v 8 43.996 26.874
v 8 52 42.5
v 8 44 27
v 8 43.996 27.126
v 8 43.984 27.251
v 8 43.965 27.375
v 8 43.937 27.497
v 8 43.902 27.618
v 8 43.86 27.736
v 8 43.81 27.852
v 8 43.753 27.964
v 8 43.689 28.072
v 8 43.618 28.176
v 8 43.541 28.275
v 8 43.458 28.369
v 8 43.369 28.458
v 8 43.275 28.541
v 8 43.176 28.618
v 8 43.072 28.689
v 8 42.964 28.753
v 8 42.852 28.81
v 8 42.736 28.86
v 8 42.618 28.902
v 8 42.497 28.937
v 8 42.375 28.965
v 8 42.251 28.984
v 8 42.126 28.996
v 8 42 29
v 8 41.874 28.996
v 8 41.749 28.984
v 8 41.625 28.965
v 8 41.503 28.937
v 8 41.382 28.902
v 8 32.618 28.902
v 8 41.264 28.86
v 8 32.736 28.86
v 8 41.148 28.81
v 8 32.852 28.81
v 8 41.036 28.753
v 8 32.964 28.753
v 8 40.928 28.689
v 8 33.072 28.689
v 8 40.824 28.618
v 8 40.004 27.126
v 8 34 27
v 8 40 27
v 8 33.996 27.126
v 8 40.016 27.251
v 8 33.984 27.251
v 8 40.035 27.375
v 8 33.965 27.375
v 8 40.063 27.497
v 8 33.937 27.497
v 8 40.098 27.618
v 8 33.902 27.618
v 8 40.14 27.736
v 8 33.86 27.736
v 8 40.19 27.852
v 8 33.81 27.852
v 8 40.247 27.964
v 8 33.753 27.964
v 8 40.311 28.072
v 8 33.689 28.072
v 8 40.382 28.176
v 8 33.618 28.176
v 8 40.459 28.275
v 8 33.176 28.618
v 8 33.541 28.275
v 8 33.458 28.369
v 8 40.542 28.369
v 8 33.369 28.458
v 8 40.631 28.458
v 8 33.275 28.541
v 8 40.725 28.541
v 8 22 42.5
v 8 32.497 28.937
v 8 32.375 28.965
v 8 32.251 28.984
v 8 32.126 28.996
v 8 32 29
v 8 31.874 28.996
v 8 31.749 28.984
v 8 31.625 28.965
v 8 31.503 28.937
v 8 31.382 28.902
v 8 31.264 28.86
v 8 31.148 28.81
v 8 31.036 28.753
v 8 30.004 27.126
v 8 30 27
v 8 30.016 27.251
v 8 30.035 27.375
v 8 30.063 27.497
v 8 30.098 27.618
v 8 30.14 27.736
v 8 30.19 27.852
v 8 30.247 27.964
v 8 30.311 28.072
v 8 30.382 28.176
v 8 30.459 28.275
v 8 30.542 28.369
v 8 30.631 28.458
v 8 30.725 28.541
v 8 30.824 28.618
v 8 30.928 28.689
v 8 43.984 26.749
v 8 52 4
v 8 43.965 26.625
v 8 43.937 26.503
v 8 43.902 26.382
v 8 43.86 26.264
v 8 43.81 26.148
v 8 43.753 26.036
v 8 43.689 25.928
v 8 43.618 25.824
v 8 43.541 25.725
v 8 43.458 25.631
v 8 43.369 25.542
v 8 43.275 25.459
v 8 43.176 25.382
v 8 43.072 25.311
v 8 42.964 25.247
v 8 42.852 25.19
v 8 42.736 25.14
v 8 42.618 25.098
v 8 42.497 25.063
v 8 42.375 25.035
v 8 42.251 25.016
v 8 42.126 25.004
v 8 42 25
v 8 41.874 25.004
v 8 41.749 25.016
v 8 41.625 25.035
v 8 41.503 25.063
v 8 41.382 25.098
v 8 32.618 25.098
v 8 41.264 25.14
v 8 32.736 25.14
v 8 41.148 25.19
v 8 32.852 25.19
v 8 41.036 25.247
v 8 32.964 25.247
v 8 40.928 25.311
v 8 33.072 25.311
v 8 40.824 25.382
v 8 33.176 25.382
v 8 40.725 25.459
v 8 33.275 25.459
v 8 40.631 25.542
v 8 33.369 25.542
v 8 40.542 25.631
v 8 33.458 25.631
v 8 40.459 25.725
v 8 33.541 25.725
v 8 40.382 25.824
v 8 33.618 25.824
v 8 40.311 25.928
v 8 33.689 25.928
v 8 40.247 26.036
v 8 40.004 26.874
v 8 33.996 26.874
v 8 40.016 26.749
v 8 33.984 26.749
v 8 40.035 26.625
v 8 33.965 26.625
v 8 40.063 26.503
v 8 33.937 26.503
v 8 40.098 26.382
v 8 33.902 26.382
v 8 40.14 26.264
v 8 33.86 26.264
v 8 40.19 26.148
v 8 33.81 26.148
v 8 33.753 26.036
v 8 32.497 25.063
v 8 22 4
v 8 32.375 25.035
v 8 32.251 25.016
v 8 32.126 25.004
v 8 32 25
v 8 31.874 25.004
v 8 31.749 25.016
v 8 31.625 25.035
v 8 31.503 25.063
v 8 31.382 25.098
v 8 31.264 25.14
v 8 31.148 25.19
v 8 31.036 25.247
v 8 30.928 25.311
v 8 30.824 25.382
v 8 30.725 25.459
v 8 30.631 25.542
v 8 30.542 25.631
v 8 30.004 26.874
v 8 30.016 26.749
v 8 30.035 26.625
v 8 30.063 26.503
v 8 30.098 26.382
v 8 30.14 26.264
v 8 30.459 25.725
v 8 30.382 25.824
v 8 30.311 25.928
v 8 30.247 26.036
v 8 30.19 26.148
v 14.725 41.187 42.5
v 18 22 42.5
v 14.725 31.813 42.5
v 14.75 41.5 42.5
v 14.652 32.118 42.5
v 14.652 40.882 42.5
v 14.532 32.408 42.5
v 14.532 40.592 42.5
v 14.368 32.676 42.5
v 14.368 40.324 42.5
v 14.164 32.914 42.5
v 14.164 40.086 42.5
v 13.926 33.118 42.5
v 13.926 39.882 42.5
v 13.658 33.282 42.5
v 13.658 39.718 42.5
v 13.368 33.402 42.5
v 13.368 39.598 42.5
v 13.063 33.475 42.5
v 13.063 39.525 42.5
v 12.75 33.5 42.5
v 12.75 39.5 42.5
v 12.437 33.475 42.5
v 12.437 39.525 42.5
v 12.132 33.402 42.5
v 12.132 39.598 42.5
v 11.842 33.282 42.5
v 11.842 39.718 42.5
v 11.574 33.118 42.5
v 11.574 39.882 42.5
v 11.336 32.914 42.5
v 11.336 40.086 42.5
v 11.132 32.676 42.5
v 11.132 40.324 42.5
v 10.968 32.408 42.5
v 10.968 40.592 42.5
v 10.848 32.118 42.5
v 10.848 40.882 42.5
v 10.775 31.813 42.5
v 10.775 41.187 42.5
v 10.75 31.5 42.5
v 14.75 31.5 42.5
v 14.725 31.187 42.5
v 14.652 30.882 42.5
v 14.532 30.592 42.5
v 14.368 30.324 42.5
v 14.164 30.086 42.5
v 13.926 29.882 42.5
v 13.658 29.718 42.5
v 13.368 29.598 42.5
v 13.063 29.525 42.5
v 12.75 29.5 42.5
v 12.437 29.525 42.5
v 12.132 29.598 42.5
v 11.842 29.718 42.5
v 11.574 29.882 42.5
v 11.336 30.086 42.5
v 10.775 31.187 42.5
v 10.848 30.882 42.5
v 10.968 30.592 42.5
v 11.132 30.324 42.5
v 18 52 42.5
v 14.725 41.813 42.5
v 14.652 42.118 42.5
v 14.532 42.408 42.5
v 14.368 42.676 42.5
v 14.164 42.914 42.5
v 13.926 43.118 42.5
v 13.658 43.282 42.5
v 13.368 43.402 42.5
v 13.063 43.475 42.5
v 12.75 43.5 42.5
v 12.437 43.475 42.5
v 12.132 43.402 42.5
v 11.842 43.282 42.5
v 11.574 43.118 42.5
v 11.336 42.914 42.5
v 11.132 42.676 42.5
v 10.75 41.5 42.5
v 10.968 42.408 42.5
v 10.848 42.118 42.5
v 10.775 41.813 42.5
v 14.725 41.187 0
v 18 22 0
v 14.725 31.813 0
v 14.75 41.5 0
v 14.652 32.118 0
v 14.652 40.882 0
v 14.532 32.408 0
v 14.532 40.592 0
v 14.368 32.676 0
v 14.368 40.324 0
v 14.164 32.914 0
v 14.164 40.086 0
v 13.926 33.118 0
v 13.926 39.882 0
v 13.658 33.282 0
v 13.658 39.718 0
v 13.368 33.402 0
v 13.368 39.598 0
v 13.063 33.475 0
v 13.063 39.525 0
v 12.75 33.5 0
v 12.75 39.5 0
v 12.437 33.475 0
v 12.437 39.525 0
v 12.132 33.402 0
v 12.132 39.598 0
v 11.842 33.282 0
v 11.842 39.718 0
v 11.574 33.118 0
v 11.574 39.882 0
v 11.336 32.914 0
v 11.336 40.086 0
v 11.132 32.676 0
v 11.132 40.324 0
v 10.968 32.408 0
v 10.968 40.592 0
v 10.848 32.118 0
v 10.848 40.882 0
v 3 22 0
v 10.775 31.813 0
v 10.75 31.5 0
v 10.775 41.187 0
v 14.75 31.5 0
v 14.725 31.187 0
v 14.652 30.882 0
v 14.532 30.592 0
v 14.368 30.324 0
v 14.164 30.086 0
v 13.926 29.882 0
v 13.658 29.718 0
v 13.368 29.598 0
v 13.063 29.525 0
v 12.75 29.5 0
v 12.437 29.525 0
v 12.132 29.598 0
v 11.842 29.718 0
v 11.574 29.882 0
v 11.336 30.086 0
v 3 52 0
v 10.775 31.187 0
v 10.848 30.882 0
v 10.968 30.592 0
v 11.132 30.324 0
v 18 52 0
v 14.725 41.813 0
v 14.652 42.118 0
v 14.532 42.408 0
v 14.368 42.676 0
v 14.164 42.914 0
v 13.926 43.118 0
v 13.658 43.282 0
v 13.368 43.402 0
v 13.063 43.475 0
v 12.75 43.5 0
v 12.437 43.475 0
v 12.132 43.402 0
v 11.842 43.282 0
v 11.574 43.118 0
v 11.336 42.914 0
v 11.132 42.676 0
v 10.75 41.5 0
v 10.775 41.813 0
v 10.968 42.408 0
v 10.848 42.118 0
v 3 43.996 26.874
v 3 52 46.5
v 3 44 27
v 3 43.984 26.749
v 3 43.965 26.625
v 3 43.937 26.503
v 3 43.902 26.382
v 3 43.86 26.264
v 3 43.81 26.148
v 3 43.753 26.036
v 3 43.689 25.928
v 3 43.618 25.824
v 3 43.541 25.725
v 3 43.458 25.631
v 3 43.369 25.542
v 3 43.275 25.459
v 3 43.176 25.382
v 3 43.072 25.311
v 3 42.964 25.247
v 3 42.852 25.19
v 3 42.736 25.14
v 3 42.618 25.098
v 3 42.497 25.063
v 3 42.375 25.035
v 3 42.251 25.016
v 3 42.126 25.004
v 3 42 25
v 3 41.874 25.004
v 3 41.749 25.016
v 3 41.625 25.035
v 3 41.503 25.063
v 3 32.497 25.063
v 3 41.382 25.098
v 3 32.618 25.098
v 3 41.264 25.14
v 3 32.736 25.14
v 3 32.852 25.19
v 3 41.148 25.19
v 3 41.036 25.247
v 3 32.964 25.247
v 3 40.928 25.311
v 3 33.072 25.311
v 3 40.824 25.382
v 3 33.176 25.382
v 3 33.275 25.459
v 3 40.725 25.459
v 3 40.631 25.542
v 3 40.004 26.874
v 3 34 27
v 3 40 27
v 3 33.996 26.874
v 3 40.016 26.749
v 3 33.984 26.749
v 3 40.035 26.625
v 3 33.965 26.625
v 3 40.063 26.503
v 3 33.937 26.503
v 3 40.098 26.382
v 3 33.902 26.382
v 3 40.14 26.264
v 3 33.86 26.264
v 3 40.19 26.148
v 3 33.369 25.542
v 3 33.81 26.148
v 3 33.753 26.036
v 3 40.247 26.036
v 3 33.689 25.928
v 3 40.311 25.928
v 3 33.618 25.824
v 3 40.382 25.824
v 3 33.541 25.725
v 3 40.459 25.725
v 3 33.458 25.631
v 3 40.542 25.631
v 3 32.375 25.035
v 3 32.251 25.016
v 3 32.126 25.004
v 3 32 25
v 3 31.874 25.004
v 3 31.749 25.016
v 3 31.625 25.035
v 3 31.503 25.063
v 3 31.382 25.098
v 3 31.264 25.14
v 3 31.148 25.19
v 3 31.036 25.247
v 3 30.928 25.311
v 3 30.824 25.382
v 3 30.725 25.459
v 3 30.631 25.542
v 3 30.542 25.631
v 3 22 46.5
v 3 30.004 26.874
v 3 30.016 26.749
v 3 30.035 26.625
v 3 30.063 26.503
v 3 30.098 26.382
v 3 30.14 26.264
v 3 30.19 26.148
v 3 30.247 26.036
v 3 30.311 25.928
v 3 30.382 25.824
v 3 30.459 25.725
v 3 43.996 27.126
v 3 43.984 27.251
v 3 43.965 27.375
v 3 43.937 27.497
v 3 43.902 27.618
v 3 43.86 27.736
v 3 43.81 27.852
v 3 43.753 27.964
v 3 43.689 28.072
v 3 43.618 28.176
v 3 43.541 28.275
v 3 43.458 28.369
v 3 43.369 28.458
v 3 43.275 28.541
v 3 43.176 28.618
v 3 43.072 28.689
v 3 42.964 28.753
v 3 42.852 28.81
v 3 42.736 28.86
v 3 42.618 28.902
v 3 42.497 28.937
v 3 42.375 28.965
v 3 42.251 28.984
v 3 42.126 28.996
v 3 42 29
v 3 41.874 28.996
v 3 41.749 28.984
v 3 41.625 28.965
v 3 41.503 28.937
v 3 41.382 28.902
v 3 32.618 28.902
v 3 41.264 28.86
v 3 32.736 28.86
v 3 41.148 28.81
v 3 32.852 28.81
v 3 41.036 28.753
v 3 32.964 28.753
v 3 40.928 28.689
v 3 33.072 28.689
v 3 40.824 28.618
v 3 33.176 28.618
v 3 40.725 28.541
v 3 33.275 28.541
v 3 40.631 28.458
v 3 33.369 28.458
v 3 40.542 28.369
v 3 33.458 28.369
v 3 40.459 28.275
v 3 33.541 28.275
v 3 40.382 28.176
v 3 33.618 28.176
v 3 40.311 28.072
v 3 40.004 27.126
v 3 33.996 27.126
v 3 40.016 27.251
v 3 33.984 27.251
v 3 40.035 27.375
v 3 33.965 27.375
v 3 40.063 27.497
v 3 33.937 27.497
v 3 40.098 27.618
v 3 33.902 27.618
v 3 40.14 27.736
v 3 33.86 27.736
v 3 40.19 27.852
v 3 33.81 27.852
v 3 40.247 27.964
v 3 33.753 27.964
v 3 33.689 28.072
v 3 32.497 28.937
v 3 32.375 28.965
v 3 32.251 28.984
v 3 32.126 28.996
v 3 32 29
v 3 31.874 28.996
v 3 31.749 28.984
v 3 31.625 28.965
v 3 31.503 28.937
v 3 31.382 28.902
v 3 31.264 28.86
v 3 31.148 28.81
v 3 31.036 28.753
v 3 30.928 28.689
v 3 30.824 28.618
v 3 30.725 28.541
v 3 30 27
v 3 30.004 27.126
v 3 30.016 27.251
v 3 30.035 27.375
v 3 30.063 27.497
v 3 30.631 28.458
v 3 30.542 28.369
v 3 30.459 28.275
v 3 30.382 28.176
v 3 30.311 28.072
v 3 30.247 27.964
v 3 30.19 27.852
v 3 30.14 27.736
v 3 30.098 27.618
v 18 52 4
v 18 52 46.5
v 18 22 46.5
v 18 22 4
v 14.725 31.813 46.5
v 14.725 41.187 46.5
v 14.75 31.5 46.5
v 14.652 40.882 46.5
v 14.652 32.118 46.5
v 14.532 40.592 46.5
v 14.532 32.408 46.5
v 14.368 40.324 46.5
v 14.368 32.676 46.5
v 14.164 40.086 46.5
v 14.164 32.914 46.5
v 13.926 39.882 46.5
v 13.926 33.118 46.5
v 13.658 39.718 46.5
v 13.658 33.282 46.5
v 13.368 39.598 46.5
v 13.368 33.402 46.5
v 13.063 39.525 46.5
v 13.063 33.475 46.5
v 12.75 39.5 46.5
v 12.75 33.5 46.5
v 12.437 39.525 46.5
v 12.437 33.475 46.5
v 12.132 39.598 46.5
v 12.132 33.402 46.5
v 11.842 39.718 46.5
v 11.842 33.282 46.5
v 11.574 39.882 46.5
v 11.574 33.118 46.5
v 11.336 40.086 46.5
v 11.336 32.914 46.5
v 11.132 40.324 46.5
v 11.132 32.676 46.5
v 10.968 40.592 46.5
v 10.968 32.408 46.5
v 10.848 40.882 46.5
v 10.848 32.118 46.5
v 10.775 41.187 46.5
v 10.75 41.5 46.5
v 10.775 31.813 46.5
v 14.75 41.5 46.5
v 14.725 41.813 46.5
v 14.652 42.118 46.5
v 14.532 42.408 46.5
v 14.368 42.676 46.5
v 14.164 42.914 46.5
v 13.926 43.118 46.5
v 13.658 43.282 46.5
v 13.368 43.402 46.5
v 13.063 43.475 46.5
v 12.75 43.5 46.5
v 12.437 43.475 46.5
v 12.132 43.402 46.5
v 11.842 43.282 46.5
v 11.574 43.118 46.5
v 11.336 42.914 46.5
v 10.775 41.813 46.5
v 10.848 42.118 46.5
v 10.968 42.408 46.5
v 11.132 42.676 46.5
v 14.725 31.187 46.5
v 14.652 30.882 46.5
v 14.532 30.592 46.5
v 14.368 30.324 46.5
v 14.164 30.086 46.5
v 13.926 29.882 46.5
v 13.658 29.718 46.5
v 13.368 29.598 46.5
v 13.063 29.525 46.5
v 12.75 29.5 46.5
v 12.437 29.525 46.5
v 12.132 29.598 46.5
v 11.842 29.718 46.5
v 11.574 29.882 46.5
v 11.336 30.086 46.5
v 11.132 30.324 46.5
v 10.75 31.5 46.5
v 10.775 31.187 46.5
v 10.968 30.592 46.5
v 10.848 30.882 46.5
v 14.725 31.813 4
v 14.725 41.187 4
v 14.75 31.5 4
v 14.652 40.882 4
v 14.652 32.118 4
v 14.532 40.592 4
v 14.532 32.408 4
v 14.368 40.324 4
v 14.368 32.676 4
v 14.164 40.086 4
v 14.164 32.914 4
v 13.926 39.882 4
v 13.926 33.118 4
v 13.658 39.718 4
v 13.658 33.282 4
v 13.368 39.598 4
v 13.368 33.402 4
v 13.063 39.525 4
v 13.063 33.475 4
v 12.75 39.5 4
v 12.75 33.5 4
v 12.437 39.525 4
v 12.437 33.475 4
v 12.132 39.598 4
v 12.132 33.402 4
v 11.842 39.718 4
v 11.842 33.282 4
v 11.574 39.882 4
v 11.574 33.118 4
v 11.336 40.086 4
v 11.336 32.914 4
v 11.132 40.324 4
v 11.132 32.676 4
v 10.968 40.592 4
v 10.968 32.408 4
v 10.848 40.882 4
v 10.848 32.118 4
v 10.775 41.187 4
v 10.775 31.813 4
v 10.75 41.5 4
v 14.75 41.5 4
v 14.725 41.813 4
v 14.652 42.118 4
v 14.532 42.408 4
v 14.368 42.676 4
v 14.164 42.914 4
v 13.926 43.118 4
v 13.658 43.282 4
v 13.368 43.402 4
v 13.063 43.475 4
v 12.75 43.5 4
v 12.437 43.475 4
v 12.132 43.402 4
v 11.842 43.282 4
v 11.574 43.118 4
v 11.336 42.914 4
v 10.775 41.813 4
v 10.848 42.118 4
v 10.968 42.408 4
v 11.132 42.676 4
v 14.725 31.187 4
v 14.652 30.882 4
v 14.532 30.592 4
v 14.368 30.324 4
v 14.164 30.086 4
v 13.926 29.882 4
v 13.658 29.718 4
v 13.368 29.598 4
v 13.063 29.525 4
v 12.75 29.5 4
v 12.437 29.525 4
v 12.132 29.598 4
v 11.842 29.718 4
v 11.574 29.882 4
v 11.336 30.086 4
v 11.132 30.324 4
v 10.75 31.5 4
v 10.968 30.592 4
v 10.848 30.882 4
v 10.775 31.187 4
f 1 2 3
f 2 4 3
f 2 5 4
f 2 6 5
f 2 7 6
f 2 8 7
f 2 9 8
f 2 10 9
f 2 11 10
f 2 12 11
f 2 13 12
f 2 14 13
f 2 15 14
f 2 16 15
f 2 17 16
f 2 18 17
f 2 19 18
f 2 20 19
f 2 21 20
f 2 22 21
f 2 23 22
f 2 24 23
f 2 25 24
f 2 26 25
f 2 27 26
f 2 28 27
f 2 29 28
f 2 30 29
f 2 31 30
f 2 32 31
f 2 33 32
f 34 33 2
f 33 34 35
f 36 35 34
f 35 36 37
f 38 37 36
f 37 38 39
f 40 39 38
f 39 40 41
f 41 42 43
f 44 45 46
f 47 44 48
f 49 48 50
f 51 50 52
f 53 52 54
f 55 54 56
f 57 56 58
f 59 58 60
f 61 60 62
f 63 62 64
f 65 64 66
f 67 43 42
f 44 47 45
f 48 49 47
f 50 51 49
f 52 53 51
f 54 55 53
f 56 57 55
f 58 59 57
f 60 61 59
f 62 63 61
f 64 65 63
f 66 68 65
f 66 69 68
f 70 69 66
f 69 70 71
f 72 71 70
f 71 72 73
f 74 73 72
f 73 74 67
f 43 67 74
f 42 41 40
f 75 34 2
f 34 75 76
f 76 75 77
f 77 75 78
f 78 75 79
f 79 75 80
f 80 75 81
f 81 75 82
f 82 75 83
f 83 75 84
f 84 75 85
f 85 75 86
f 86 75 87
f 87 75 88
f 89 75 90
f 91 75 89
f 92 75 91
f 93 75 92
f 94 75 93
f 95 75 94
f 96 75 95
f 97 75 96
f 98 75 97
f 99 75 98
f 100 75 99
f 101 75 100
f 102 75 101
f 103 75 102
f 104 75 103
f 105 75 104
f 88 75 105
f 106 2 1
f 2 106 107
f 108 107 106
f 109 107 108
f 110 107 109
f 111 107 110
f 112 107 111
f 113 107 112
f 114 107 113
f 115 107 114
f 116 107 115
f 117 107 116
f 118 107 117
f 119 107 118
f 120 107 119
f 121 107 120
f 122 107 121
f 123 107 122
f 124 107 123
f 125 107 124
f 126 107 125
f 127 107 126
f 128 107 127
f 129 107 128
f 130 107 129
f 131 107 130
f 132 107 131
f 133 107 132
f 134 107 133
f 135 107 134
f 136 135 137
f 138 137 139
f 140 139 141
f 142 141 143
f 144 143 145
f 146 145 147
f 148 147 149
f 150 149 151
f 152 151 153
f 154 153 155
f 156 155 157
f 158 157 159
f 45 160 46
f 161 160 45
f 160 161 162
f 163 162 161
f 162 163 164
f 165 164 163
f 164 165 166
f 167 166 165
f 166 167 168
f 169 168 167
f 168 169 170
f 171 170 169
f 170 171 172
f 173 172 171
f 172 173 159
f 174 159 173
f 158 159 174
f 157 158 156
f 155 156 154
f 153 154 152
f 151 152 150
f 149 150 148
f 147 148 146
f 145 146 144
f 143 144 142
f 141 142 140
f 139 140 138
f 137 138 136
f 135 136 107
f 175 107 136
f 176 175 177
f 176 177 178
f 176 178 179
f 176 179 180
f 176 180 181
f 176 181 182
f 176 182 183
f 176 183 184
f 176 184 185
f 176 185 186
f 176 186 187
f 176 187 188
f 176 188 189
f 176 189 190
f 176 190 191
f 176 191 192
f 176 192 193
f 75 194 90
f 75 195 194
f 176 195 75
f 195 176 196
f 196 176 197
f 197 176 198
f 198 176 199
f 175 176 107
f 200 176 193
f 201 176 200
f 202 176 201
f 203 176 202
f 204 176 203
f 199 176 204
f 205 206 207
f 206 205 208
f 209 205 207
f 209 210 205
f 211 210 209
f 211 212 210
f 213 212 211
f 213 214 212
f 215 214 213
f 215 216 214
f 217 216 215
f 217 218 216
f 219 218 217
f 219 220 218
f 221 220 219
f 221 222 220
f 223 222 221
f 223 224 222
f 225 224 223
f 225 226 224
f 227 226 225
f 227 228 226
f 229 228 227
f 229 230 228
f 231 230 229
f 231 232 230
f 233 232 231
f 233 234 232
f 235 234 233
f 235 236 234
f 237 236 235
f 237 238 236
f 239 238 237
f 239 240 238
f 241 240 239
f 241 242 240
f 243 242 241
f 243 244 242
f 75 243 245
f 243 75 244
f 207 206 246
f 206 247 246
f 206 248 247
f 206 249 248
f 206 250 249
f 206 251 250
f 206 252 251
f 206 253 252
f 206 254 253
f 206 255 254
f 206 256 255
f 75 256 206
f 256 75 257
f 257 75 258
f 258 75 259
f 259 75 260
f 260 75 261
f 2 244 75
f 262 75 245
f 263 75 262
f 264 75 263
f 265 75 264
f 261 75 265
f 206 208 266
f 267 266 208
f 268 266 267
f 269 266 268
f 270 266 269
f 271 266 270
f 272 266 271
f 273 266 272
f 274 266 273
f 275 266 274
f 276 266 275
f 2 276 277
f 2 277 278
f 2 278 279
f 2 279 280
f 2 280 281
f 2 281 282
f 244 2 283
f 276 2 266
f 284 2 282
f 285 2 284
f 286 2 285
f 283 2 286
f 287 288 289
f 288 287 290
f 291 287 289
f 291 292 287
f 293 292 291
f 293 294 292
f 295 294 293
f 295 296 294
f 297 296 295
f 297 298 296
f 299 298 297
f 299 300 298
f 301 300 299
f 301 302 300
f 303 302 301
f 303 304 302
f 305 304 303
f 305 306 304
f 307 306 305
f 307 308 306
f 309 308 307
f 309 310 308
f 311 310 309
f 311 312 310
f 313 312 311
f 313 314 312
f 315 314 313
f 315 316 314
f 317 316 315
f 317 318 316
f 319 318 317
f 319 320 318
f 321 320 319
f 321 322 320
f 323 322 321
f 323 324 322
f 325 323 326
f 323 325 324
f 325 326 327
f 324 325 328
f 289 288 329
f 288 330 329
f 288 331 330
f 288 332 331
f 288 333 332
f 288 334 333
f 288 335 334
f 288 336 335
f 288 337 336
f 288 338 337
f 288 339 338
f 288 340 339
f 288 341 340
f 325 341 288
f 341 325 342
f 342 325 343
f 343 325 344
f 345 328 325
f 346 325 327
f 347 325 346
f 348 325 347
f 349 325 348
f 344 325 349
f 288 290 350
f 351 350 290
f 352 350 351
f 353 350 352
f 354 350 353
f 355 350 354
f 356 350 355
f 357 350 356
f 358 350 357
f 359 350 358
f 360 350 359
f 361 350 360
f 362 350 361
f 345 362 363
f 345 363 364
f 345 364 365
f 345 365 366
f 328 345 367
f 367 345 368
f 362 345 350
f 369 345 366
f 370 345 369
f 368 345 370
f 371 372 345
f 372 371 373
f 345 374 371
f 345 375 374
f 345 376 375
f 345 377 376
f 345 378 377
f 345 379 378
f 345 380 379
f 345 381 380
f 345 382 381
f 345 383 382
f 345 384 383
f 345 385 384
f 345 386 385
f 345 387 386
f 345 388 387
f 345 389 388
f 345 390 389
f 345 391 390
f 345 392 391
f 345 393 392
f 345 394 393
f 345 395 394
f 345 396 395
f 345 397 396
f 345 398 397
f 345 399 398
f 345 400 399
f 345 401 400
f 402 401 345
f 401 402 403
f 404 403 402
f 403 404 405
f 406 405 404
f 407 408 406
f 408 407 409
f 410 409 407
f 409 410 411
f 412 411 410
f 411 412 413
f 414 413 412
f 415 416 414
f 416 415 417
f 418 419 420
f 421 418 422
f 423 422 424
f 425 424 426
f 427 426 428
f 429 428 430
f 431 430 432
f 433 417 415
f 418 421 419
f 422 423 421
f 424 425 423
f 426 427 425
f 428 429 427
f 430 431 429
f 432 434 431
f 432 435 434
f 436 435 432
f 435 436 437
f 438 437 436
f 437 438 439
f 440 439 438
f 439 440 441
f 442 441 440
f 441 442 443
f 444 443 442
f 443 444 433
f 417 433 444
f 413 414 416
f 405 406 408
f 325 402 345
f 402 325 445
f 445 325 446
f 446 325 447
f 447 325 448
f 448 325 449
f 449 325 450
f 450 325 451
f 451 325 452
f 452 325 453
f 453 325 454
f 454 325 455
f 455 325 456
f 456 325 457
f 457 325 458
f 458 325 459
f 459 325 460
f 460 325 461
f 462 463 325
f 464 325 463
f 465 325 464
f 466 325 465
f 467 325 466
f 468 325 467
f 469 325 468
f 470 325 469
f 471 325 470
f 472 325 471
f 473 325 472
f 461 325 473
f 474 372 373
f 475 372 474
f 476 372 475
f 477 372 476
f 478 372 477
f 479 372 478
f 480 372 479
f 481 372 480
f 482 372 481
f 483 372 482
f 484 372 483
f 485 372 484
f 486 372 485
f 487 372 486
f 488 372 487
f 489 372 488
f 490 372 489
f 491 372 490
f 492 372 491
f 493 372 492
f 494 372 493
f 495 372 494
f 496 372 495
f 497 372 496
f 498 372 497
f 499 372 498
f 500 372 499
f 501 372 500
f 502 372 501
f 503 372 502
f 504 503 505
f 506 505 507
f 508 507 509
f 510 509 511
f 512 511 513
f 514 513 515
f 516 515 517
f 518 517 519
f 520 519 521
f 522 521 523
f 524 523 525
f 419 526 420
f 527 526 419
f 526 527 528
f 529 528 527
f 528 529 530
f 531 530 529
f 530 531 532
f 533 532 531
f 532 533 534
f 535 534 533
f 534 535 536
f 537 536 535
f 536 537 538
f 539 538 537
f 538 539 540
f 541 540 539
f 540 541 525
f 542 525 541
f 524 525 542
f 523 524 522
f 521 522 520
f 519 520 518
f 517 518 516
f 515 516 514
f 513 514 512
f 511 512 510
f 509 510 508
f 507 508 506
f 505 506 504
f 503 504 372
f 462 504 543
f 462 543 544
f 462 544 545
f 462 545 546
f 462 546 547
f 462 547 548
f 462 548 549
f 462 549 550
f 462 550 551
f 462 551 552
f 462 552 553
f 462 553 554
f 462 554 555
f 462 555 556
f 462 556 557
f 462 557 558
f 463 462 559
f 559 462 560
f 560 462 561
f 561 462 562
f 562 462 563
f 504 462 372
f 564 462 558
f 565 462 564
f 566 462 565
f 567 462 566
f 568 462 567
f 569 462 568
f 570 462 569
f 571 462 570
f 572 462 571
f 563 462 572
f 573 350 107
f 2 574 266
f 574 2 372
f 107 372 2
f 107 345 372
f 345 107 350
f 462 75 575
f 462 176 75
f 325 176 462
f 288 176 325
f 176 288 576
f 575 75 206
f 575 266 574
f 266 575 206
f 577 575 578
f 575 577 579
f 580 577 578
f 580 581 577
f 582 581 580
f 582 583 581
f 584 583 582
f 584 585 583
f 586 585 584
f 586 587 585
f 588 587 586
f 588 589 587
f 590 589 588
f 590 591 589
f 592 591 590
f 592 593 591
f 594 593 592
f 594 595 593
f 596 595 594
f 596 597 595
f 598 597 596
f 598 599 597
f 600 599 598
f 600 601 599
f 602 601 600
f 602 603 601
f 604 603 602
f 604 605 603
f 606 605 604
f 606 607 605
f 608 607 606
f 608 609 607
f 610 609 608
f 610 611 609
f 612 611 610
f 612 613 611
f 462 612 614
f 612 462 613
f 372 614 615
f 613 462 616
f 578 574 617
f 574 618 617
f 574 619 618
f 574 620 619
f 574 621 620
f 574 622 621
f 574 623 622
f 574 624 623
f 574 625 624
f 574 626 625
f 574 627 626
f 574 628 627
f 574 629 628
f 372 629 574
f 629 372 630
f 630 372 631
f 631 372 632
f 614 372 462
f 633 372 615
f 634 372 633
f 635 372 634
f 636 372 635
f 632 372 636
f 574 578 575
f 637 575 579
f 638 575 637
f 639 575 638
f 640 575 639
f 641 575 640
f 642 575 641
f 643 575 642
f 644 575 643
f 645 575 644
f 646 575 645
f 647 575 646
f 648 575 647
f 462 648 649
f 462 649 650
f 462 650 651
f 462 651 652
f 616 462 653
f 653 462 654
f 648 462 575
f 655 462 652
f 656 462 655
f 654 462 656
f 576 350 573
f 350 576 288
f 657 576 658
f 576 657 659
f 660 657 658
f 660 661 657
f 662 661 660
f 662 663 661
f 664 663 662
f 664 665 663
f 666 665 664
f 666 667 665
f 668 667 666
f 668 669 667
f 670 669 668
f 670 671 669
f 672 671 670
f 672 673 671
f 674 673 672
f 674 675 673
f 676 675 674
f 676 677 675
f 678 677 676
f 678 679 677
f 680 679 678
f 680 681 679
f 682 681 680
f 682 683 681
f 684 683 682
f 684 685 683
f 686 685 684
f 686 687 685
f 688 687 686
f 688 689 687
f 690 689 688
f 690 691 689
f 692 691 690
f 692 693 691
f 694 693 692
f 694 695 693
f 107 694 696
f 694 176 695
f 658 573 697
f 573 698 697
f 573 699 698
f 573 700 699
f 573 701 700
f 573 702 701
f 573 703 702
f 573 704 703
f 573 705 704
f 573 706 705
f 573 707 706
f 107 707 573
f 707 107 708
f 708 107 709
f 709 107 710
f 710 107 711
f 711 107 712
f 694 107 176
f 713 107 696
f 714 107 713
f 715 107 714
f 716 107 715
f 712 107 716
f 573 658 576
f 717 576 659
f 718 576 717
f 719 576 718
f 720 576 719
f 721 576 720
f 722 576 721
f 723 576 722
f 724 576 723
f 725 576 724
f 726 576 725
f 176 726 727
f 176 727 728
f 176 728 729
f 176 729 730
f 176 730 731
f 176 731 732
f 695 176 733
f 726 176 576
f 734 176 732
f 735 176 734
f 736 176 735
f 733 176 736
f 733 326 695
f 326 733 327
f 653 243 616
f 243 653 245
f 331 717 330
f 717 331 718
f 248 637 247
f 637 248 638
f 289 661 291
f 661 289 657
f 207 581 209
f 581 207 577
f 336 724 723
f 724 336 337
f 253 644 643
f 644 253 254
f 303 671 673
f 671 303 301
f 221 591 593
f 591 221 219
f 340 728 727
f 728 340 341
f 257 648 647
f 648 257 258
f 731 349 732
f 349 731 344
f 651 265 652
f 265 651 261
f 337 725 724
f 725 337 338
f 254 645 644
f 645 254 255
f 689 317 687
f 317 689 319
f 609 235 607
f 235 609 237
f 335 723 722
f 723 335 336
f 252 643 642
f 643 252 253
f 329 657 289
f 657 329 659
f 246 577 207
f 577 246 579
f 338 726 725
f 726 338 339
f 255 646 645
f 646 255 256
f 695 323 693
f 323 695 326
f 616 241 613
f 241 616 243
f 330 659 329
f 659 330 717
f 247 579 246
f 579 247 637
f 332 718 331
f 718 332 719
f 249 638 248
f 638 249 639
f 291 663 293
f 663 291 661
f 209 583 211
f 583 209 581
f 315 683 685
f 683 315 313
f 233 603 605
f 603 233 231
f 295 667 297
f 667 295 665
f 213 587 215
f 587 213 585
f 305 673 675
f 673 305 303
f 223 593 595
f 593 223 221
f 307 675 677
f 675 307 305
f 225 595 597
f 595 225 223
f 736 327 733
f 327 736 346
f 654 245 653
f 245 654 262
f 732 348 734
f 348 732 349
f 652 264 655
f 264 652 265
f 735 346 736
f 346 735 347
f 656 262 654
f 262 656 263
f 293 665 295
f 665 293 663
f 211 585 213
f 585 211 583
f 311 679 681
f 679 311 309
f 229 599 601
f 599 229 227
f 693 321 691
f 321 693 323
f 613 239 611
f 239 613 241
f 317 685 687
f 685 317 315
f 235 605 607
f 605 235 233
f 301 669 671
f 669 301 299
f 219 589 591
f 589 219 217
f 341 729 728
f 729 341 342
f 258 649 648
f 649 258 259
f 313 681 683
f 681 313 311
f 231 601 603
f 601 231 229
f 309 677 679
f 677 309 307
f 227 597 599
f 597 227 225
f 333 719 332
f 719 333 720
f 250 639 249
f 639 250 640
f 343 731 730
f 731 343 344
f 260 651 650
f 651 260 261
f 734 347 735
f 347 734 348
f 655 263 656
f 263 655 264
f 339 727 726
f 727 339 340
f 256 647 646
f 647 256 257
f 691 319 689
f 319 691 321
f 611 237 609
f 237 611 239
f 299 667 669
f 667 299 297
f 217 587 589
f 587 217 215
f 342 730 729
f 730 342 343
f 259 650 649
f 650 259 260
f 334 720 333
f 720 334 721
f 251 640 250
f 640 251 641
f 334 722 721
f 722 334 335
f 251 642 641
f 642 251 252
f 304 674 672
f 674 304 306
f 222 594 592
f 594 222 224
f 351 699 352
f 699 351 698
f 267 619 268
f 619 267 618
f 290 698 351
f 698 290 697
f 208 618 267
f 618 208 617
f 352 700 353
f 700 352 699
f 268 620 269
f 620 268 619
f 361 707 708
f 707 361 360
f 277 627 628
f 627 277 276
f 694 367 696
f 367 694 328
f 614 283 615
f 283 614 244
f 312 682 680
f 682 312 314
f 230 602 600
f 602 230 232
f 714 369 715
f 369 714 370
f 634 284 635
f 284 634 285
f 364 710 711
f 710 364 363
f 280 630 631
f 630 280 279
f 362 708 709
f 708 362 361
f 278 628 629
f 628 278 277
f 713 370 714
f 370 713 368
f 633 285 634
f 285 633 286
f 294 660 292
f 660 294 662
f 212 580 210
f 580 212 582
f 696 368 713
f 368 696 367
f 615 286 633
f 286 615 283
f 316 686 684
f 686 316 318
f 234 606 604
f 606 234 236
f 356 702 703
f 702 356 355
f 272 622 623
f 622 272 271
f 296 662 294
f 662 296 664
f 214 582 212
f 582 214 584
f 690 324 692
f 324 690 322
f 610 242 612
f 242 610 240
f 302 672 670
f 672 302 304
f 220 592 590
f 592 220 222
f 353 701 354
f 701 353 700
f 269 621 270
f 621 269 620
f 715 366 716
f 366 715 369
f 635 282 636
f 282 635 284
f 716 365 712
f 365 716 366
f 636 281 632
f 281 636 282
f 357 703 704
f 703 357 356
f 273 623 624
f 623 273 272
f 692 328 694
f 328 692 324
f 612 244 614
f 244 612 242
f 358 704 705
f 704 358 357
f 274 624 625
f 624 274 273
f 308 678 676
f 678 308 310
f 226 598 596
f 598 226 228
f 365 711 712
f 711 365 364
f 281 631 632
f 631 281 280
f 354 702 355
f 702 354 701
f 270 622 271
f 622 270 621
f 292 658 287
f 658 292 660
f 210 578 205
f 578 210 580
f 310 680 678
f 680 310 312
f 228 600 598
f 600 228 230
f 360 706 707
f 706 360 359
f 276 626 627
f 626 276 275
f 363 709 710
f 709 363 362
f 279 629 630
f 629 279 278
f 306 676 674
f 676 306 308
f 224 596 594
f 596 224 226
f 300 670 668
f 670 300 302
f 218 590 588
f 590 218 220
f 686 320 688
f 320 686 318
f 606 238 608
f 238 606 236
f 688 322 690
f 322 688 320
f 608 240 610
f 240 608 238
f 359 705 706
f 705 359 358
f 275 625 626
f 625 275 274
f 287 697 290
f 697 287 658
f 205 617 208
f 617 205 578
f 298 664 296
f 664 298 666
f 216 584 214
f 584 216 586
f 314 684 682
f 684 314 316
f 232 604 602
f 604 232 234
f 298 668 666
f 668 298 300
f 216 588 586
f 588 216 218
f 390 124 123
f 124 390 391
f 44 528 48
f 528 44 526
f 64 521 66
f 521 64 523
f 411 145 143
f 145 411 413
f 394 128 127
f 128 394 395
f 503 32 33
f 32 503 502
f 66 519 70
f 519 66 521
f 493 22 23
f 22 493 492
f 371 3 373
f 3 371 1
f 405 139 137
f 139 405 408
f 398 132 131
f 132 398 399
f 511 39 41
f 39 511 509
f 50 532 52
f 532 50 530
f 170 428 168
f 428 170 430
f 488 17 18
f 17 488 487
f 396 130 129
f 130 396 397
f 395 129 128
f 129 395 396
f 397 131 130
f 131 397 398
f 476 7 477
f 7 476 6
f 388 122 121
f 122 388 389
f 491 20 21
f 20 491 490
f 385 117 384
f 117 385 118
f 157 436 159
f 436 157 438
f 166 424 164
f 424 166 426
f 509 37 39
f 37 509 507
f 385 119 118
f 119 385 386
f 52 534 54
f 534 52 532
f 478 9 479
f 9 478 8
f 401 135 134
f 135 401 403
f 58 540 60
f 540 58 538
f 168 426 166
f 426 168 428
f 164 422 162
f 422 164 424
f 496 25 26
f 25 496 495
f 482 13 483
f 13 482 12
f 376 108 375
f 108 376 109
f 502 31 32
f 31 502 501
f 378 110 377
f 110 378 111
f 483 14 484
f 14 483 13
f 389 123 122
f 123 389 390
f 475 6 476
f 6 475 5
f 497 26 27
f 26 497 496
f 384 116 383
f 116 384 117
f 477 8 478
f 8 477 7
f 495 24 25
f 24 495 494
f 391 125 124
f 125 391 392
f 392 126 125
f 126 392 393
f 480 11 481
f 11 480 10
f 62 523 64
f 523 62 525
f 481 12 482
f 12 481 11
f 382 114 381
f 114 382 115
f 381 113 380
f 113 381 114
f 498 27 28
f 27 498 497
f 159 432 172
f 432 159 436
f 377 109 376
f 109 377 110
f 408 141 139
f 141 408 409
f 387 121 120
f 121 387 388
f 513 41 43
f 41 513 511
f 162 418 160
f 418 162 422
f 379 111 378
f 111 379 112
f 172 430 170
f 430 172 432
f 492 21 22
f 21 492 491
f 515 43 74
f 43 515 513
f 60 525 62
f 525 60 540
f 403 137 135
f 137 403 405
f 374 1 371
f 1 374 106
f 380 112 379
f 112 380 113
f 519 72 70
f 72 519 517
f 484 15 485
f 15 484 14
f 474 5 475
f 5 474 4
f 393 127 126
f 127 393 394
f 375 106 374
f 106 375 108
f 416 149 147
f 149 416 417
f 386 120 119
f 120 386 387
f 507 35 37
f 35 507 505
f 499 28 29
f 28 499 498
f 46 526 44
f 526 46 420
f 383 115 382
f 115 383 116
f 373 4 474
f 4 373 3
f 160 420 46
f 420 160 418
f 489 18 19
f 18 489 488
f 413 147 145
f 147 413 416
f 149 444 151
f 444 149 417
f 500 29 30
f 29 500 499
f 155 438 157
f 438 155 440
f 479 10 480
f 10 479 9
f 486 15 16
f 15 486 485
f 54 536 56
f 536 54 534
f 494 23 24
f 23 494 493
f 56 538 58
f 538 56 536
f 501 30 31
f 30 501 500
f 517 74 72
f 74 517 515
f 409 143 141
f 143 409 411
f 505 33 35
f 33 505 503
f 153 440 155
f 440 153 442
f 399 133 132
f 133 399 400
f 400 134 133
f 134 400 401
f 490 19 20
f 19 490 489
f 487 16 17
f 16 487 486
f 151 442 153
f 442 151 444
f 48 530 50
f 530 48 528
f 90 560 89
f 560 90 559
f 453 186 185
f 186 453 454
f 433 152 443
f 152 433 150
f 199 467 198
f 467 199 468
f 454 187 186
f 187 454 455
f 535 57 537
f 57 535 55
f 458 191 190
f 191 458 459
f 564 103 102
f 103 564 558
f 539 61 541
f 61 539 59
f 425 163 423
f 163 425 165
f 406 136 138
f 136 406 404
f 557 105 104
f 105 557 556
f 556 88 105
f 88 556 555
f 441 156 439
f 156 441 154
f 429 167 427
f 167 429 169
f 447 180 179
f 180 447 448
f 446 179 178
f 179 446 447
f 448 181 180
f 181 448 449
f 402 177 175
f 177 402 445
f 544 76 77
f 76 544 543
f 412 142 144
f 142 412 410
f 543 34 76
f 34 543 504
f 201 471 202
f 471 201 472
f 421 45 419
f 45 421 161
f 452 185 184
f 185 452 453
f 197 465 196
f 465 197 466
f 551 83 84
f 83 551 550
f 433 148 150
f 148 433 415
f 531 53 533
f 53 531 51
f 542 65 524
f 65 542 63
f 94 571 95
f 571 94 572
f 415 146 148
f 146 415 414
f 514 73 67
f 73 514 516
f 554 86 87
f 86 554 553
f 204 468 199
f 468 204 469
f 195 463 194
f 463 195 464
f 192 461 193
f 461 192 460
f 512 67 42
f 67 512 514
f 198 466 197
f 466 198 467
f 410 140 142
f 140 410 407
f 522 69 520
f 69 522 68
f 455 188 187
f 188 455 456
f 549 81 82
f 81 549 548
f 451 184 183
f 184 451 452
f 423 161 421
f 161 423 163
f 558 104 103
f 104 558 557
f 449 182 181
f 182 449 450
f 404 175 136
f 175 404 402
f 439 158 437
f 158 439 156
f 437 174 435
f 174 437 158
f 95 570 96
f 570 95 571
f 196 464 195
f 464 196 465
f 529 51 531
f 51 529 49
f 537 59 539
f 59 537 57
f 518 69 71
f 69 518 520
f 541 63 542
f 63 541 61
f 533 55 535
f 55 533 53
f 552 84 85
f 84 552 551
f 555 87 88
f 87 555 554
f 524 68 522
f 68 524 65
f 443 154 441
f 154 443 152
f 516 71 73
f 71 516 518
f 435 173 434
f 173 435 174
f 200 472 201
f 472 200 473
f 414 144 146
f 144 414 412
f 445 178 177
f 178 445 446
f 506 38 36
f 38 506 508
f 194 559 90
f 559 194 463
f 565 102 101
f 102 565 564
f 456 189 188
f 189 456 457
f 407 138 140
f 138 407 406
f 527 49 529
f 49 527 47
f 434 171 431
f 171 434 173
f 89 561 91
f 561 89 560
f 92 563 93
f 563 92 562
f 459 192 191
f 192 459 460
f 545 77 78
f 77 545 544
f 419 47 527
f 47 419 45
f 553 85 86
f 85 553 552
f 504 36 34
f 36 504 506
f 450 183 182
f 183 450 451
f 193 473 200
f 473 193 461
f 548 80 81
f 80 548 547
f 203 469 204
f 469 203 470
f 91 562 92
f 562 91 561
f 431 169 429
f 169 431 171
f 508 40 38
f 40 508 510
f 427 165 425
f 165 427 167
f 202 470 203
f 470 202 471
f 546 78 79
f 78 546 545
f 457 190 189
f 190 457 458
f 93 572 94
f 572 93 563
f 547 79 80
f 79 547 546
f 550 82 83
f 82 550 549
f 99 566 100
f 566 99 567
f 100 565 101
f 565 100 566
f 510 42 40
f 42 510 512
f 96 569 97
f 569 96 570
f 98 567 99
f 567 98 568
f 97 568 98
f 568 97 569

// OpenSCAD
difference() {
union() {
    
    translate([3, 22, 0])
       cube([5, 30, 46.5-4]);
    
    translate([3, 7+15, 46.5-4])
        cube([15, 30, 4]);
    translate([3, 7+15, 0])
        cube([15, 30, 4]);

    
}


    
    translate([ -49.5/2-15+52.5, -10/2+36.5, 0])
        cylinder(h=9910, r=2, center=true, $fn=40);

    translate([ -49.5/2-15+52.5,  10/2+36.5, 0])
        cylinder(h=9910, r=2, center=true, $fn=40);    
    
    translate([-5,22+15+5,27]){
      rotate([0,90,0]){
           cylinder(h=1000, r=2, $fn=100, center=false);
      }
  }
    translate([-5,22+15-5,27]){
      rotate([0,90,0]){
           cylinder(h=1000, r=2, $fn=100, center=false);
      }
  }
    

}
